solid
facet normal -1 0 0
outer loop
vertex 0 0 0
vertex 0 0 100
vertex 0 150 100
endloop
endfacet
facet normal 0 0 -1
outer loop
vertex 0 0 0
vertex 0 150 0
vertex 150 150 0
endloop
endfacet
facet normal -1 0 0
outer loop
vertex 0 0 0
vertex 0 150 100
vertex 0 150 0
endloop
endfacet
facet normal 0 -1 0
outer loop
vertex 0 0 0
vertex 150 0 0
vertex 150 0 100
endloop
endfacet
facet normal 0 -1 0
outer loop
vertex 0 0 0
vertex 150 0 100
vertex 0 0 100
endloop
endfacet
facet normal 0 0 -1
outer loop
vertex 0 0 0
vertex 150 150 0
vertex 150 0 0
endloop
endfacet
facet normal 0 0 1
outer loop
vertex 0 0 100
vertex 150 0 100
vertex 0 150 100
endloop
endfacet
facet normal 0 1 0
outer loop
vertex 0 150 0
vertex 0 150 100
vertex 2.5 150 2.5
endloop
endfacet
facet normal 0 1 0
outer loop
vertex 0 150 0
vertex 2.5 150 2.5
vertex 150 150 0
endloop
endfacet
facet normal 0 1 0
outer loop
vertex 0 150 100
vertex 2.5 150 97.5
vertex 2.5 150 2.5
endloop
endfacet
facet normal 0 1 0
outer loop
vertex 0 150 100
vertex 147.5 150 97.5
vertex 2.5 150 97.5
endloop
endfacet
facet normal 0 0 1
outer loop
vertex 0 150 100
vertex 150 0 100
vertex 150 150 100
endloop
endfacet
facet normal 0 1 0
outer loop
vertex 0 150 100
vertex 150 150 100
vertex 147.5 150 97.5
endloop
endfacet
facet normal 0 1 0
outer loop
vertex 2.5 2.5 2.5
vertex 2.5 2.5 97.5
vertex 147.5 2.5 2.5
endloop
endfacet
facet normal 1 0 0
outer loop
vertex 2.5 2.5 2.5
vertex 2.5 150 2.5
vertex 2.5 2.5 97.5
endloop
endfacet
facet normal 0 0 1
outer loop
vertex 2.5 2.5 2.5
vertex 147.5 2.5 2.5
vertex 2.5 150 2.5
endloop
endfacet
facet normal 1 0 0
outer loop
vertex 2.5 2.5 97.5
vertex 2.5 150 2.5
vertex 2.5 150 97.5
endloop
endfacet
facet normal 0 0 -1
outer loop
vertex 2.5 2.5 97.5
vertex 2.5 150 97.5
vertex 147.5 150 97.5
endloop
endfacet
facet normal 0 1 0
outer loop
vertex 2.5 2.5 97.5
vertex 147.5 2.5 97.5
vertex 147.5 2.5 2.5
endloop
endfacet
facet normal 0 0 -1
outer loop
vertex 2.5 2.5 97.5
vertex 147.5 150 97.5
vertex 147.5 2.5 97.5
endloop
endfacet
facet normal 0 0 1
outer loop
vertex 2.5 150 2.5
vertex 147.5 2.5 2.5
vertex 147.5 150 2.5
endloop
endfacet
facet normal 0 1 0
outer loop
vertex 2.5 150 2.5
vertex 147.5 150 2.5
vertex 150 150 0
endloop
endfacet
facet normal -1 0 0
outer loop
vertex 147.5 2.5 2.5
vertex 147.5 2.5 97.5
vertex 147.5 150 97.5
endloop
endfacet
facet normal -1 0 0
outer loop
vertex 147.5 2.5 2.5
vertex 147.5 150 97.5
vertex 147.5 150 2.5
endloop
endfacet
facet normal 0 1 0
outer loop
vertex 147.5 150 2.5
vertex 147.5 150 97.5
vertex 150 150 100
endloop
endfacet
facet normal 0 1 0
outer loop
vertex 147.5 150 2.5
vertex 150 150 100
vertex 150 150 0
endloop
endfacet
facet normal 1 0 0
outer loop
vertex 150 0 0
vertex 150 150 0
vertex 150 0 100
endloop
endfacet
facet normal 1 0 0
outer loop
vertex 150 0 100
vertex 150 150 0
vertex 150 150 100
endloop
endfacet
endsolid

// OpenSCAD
// outer shell
// 28.09.2025 Sebastian Weigl
 
// set the fregment sizes
$fn = $preview ? 48 : 64;

// vars
border=2.5;

fir_box_height=100;
fir_box_width=150;
fir_box_depth=150;

sec_box_height=100-(border+border);
sec_box_width=150-(border+border);
sec_box_depth=150-(border);


difference() {
cube([fir_box_width,fir_box_depth,fir_box_height],false);
translate([border,border,border])
cube([sec_box_width,sec_box_depth,sec_box_height],false);
}
